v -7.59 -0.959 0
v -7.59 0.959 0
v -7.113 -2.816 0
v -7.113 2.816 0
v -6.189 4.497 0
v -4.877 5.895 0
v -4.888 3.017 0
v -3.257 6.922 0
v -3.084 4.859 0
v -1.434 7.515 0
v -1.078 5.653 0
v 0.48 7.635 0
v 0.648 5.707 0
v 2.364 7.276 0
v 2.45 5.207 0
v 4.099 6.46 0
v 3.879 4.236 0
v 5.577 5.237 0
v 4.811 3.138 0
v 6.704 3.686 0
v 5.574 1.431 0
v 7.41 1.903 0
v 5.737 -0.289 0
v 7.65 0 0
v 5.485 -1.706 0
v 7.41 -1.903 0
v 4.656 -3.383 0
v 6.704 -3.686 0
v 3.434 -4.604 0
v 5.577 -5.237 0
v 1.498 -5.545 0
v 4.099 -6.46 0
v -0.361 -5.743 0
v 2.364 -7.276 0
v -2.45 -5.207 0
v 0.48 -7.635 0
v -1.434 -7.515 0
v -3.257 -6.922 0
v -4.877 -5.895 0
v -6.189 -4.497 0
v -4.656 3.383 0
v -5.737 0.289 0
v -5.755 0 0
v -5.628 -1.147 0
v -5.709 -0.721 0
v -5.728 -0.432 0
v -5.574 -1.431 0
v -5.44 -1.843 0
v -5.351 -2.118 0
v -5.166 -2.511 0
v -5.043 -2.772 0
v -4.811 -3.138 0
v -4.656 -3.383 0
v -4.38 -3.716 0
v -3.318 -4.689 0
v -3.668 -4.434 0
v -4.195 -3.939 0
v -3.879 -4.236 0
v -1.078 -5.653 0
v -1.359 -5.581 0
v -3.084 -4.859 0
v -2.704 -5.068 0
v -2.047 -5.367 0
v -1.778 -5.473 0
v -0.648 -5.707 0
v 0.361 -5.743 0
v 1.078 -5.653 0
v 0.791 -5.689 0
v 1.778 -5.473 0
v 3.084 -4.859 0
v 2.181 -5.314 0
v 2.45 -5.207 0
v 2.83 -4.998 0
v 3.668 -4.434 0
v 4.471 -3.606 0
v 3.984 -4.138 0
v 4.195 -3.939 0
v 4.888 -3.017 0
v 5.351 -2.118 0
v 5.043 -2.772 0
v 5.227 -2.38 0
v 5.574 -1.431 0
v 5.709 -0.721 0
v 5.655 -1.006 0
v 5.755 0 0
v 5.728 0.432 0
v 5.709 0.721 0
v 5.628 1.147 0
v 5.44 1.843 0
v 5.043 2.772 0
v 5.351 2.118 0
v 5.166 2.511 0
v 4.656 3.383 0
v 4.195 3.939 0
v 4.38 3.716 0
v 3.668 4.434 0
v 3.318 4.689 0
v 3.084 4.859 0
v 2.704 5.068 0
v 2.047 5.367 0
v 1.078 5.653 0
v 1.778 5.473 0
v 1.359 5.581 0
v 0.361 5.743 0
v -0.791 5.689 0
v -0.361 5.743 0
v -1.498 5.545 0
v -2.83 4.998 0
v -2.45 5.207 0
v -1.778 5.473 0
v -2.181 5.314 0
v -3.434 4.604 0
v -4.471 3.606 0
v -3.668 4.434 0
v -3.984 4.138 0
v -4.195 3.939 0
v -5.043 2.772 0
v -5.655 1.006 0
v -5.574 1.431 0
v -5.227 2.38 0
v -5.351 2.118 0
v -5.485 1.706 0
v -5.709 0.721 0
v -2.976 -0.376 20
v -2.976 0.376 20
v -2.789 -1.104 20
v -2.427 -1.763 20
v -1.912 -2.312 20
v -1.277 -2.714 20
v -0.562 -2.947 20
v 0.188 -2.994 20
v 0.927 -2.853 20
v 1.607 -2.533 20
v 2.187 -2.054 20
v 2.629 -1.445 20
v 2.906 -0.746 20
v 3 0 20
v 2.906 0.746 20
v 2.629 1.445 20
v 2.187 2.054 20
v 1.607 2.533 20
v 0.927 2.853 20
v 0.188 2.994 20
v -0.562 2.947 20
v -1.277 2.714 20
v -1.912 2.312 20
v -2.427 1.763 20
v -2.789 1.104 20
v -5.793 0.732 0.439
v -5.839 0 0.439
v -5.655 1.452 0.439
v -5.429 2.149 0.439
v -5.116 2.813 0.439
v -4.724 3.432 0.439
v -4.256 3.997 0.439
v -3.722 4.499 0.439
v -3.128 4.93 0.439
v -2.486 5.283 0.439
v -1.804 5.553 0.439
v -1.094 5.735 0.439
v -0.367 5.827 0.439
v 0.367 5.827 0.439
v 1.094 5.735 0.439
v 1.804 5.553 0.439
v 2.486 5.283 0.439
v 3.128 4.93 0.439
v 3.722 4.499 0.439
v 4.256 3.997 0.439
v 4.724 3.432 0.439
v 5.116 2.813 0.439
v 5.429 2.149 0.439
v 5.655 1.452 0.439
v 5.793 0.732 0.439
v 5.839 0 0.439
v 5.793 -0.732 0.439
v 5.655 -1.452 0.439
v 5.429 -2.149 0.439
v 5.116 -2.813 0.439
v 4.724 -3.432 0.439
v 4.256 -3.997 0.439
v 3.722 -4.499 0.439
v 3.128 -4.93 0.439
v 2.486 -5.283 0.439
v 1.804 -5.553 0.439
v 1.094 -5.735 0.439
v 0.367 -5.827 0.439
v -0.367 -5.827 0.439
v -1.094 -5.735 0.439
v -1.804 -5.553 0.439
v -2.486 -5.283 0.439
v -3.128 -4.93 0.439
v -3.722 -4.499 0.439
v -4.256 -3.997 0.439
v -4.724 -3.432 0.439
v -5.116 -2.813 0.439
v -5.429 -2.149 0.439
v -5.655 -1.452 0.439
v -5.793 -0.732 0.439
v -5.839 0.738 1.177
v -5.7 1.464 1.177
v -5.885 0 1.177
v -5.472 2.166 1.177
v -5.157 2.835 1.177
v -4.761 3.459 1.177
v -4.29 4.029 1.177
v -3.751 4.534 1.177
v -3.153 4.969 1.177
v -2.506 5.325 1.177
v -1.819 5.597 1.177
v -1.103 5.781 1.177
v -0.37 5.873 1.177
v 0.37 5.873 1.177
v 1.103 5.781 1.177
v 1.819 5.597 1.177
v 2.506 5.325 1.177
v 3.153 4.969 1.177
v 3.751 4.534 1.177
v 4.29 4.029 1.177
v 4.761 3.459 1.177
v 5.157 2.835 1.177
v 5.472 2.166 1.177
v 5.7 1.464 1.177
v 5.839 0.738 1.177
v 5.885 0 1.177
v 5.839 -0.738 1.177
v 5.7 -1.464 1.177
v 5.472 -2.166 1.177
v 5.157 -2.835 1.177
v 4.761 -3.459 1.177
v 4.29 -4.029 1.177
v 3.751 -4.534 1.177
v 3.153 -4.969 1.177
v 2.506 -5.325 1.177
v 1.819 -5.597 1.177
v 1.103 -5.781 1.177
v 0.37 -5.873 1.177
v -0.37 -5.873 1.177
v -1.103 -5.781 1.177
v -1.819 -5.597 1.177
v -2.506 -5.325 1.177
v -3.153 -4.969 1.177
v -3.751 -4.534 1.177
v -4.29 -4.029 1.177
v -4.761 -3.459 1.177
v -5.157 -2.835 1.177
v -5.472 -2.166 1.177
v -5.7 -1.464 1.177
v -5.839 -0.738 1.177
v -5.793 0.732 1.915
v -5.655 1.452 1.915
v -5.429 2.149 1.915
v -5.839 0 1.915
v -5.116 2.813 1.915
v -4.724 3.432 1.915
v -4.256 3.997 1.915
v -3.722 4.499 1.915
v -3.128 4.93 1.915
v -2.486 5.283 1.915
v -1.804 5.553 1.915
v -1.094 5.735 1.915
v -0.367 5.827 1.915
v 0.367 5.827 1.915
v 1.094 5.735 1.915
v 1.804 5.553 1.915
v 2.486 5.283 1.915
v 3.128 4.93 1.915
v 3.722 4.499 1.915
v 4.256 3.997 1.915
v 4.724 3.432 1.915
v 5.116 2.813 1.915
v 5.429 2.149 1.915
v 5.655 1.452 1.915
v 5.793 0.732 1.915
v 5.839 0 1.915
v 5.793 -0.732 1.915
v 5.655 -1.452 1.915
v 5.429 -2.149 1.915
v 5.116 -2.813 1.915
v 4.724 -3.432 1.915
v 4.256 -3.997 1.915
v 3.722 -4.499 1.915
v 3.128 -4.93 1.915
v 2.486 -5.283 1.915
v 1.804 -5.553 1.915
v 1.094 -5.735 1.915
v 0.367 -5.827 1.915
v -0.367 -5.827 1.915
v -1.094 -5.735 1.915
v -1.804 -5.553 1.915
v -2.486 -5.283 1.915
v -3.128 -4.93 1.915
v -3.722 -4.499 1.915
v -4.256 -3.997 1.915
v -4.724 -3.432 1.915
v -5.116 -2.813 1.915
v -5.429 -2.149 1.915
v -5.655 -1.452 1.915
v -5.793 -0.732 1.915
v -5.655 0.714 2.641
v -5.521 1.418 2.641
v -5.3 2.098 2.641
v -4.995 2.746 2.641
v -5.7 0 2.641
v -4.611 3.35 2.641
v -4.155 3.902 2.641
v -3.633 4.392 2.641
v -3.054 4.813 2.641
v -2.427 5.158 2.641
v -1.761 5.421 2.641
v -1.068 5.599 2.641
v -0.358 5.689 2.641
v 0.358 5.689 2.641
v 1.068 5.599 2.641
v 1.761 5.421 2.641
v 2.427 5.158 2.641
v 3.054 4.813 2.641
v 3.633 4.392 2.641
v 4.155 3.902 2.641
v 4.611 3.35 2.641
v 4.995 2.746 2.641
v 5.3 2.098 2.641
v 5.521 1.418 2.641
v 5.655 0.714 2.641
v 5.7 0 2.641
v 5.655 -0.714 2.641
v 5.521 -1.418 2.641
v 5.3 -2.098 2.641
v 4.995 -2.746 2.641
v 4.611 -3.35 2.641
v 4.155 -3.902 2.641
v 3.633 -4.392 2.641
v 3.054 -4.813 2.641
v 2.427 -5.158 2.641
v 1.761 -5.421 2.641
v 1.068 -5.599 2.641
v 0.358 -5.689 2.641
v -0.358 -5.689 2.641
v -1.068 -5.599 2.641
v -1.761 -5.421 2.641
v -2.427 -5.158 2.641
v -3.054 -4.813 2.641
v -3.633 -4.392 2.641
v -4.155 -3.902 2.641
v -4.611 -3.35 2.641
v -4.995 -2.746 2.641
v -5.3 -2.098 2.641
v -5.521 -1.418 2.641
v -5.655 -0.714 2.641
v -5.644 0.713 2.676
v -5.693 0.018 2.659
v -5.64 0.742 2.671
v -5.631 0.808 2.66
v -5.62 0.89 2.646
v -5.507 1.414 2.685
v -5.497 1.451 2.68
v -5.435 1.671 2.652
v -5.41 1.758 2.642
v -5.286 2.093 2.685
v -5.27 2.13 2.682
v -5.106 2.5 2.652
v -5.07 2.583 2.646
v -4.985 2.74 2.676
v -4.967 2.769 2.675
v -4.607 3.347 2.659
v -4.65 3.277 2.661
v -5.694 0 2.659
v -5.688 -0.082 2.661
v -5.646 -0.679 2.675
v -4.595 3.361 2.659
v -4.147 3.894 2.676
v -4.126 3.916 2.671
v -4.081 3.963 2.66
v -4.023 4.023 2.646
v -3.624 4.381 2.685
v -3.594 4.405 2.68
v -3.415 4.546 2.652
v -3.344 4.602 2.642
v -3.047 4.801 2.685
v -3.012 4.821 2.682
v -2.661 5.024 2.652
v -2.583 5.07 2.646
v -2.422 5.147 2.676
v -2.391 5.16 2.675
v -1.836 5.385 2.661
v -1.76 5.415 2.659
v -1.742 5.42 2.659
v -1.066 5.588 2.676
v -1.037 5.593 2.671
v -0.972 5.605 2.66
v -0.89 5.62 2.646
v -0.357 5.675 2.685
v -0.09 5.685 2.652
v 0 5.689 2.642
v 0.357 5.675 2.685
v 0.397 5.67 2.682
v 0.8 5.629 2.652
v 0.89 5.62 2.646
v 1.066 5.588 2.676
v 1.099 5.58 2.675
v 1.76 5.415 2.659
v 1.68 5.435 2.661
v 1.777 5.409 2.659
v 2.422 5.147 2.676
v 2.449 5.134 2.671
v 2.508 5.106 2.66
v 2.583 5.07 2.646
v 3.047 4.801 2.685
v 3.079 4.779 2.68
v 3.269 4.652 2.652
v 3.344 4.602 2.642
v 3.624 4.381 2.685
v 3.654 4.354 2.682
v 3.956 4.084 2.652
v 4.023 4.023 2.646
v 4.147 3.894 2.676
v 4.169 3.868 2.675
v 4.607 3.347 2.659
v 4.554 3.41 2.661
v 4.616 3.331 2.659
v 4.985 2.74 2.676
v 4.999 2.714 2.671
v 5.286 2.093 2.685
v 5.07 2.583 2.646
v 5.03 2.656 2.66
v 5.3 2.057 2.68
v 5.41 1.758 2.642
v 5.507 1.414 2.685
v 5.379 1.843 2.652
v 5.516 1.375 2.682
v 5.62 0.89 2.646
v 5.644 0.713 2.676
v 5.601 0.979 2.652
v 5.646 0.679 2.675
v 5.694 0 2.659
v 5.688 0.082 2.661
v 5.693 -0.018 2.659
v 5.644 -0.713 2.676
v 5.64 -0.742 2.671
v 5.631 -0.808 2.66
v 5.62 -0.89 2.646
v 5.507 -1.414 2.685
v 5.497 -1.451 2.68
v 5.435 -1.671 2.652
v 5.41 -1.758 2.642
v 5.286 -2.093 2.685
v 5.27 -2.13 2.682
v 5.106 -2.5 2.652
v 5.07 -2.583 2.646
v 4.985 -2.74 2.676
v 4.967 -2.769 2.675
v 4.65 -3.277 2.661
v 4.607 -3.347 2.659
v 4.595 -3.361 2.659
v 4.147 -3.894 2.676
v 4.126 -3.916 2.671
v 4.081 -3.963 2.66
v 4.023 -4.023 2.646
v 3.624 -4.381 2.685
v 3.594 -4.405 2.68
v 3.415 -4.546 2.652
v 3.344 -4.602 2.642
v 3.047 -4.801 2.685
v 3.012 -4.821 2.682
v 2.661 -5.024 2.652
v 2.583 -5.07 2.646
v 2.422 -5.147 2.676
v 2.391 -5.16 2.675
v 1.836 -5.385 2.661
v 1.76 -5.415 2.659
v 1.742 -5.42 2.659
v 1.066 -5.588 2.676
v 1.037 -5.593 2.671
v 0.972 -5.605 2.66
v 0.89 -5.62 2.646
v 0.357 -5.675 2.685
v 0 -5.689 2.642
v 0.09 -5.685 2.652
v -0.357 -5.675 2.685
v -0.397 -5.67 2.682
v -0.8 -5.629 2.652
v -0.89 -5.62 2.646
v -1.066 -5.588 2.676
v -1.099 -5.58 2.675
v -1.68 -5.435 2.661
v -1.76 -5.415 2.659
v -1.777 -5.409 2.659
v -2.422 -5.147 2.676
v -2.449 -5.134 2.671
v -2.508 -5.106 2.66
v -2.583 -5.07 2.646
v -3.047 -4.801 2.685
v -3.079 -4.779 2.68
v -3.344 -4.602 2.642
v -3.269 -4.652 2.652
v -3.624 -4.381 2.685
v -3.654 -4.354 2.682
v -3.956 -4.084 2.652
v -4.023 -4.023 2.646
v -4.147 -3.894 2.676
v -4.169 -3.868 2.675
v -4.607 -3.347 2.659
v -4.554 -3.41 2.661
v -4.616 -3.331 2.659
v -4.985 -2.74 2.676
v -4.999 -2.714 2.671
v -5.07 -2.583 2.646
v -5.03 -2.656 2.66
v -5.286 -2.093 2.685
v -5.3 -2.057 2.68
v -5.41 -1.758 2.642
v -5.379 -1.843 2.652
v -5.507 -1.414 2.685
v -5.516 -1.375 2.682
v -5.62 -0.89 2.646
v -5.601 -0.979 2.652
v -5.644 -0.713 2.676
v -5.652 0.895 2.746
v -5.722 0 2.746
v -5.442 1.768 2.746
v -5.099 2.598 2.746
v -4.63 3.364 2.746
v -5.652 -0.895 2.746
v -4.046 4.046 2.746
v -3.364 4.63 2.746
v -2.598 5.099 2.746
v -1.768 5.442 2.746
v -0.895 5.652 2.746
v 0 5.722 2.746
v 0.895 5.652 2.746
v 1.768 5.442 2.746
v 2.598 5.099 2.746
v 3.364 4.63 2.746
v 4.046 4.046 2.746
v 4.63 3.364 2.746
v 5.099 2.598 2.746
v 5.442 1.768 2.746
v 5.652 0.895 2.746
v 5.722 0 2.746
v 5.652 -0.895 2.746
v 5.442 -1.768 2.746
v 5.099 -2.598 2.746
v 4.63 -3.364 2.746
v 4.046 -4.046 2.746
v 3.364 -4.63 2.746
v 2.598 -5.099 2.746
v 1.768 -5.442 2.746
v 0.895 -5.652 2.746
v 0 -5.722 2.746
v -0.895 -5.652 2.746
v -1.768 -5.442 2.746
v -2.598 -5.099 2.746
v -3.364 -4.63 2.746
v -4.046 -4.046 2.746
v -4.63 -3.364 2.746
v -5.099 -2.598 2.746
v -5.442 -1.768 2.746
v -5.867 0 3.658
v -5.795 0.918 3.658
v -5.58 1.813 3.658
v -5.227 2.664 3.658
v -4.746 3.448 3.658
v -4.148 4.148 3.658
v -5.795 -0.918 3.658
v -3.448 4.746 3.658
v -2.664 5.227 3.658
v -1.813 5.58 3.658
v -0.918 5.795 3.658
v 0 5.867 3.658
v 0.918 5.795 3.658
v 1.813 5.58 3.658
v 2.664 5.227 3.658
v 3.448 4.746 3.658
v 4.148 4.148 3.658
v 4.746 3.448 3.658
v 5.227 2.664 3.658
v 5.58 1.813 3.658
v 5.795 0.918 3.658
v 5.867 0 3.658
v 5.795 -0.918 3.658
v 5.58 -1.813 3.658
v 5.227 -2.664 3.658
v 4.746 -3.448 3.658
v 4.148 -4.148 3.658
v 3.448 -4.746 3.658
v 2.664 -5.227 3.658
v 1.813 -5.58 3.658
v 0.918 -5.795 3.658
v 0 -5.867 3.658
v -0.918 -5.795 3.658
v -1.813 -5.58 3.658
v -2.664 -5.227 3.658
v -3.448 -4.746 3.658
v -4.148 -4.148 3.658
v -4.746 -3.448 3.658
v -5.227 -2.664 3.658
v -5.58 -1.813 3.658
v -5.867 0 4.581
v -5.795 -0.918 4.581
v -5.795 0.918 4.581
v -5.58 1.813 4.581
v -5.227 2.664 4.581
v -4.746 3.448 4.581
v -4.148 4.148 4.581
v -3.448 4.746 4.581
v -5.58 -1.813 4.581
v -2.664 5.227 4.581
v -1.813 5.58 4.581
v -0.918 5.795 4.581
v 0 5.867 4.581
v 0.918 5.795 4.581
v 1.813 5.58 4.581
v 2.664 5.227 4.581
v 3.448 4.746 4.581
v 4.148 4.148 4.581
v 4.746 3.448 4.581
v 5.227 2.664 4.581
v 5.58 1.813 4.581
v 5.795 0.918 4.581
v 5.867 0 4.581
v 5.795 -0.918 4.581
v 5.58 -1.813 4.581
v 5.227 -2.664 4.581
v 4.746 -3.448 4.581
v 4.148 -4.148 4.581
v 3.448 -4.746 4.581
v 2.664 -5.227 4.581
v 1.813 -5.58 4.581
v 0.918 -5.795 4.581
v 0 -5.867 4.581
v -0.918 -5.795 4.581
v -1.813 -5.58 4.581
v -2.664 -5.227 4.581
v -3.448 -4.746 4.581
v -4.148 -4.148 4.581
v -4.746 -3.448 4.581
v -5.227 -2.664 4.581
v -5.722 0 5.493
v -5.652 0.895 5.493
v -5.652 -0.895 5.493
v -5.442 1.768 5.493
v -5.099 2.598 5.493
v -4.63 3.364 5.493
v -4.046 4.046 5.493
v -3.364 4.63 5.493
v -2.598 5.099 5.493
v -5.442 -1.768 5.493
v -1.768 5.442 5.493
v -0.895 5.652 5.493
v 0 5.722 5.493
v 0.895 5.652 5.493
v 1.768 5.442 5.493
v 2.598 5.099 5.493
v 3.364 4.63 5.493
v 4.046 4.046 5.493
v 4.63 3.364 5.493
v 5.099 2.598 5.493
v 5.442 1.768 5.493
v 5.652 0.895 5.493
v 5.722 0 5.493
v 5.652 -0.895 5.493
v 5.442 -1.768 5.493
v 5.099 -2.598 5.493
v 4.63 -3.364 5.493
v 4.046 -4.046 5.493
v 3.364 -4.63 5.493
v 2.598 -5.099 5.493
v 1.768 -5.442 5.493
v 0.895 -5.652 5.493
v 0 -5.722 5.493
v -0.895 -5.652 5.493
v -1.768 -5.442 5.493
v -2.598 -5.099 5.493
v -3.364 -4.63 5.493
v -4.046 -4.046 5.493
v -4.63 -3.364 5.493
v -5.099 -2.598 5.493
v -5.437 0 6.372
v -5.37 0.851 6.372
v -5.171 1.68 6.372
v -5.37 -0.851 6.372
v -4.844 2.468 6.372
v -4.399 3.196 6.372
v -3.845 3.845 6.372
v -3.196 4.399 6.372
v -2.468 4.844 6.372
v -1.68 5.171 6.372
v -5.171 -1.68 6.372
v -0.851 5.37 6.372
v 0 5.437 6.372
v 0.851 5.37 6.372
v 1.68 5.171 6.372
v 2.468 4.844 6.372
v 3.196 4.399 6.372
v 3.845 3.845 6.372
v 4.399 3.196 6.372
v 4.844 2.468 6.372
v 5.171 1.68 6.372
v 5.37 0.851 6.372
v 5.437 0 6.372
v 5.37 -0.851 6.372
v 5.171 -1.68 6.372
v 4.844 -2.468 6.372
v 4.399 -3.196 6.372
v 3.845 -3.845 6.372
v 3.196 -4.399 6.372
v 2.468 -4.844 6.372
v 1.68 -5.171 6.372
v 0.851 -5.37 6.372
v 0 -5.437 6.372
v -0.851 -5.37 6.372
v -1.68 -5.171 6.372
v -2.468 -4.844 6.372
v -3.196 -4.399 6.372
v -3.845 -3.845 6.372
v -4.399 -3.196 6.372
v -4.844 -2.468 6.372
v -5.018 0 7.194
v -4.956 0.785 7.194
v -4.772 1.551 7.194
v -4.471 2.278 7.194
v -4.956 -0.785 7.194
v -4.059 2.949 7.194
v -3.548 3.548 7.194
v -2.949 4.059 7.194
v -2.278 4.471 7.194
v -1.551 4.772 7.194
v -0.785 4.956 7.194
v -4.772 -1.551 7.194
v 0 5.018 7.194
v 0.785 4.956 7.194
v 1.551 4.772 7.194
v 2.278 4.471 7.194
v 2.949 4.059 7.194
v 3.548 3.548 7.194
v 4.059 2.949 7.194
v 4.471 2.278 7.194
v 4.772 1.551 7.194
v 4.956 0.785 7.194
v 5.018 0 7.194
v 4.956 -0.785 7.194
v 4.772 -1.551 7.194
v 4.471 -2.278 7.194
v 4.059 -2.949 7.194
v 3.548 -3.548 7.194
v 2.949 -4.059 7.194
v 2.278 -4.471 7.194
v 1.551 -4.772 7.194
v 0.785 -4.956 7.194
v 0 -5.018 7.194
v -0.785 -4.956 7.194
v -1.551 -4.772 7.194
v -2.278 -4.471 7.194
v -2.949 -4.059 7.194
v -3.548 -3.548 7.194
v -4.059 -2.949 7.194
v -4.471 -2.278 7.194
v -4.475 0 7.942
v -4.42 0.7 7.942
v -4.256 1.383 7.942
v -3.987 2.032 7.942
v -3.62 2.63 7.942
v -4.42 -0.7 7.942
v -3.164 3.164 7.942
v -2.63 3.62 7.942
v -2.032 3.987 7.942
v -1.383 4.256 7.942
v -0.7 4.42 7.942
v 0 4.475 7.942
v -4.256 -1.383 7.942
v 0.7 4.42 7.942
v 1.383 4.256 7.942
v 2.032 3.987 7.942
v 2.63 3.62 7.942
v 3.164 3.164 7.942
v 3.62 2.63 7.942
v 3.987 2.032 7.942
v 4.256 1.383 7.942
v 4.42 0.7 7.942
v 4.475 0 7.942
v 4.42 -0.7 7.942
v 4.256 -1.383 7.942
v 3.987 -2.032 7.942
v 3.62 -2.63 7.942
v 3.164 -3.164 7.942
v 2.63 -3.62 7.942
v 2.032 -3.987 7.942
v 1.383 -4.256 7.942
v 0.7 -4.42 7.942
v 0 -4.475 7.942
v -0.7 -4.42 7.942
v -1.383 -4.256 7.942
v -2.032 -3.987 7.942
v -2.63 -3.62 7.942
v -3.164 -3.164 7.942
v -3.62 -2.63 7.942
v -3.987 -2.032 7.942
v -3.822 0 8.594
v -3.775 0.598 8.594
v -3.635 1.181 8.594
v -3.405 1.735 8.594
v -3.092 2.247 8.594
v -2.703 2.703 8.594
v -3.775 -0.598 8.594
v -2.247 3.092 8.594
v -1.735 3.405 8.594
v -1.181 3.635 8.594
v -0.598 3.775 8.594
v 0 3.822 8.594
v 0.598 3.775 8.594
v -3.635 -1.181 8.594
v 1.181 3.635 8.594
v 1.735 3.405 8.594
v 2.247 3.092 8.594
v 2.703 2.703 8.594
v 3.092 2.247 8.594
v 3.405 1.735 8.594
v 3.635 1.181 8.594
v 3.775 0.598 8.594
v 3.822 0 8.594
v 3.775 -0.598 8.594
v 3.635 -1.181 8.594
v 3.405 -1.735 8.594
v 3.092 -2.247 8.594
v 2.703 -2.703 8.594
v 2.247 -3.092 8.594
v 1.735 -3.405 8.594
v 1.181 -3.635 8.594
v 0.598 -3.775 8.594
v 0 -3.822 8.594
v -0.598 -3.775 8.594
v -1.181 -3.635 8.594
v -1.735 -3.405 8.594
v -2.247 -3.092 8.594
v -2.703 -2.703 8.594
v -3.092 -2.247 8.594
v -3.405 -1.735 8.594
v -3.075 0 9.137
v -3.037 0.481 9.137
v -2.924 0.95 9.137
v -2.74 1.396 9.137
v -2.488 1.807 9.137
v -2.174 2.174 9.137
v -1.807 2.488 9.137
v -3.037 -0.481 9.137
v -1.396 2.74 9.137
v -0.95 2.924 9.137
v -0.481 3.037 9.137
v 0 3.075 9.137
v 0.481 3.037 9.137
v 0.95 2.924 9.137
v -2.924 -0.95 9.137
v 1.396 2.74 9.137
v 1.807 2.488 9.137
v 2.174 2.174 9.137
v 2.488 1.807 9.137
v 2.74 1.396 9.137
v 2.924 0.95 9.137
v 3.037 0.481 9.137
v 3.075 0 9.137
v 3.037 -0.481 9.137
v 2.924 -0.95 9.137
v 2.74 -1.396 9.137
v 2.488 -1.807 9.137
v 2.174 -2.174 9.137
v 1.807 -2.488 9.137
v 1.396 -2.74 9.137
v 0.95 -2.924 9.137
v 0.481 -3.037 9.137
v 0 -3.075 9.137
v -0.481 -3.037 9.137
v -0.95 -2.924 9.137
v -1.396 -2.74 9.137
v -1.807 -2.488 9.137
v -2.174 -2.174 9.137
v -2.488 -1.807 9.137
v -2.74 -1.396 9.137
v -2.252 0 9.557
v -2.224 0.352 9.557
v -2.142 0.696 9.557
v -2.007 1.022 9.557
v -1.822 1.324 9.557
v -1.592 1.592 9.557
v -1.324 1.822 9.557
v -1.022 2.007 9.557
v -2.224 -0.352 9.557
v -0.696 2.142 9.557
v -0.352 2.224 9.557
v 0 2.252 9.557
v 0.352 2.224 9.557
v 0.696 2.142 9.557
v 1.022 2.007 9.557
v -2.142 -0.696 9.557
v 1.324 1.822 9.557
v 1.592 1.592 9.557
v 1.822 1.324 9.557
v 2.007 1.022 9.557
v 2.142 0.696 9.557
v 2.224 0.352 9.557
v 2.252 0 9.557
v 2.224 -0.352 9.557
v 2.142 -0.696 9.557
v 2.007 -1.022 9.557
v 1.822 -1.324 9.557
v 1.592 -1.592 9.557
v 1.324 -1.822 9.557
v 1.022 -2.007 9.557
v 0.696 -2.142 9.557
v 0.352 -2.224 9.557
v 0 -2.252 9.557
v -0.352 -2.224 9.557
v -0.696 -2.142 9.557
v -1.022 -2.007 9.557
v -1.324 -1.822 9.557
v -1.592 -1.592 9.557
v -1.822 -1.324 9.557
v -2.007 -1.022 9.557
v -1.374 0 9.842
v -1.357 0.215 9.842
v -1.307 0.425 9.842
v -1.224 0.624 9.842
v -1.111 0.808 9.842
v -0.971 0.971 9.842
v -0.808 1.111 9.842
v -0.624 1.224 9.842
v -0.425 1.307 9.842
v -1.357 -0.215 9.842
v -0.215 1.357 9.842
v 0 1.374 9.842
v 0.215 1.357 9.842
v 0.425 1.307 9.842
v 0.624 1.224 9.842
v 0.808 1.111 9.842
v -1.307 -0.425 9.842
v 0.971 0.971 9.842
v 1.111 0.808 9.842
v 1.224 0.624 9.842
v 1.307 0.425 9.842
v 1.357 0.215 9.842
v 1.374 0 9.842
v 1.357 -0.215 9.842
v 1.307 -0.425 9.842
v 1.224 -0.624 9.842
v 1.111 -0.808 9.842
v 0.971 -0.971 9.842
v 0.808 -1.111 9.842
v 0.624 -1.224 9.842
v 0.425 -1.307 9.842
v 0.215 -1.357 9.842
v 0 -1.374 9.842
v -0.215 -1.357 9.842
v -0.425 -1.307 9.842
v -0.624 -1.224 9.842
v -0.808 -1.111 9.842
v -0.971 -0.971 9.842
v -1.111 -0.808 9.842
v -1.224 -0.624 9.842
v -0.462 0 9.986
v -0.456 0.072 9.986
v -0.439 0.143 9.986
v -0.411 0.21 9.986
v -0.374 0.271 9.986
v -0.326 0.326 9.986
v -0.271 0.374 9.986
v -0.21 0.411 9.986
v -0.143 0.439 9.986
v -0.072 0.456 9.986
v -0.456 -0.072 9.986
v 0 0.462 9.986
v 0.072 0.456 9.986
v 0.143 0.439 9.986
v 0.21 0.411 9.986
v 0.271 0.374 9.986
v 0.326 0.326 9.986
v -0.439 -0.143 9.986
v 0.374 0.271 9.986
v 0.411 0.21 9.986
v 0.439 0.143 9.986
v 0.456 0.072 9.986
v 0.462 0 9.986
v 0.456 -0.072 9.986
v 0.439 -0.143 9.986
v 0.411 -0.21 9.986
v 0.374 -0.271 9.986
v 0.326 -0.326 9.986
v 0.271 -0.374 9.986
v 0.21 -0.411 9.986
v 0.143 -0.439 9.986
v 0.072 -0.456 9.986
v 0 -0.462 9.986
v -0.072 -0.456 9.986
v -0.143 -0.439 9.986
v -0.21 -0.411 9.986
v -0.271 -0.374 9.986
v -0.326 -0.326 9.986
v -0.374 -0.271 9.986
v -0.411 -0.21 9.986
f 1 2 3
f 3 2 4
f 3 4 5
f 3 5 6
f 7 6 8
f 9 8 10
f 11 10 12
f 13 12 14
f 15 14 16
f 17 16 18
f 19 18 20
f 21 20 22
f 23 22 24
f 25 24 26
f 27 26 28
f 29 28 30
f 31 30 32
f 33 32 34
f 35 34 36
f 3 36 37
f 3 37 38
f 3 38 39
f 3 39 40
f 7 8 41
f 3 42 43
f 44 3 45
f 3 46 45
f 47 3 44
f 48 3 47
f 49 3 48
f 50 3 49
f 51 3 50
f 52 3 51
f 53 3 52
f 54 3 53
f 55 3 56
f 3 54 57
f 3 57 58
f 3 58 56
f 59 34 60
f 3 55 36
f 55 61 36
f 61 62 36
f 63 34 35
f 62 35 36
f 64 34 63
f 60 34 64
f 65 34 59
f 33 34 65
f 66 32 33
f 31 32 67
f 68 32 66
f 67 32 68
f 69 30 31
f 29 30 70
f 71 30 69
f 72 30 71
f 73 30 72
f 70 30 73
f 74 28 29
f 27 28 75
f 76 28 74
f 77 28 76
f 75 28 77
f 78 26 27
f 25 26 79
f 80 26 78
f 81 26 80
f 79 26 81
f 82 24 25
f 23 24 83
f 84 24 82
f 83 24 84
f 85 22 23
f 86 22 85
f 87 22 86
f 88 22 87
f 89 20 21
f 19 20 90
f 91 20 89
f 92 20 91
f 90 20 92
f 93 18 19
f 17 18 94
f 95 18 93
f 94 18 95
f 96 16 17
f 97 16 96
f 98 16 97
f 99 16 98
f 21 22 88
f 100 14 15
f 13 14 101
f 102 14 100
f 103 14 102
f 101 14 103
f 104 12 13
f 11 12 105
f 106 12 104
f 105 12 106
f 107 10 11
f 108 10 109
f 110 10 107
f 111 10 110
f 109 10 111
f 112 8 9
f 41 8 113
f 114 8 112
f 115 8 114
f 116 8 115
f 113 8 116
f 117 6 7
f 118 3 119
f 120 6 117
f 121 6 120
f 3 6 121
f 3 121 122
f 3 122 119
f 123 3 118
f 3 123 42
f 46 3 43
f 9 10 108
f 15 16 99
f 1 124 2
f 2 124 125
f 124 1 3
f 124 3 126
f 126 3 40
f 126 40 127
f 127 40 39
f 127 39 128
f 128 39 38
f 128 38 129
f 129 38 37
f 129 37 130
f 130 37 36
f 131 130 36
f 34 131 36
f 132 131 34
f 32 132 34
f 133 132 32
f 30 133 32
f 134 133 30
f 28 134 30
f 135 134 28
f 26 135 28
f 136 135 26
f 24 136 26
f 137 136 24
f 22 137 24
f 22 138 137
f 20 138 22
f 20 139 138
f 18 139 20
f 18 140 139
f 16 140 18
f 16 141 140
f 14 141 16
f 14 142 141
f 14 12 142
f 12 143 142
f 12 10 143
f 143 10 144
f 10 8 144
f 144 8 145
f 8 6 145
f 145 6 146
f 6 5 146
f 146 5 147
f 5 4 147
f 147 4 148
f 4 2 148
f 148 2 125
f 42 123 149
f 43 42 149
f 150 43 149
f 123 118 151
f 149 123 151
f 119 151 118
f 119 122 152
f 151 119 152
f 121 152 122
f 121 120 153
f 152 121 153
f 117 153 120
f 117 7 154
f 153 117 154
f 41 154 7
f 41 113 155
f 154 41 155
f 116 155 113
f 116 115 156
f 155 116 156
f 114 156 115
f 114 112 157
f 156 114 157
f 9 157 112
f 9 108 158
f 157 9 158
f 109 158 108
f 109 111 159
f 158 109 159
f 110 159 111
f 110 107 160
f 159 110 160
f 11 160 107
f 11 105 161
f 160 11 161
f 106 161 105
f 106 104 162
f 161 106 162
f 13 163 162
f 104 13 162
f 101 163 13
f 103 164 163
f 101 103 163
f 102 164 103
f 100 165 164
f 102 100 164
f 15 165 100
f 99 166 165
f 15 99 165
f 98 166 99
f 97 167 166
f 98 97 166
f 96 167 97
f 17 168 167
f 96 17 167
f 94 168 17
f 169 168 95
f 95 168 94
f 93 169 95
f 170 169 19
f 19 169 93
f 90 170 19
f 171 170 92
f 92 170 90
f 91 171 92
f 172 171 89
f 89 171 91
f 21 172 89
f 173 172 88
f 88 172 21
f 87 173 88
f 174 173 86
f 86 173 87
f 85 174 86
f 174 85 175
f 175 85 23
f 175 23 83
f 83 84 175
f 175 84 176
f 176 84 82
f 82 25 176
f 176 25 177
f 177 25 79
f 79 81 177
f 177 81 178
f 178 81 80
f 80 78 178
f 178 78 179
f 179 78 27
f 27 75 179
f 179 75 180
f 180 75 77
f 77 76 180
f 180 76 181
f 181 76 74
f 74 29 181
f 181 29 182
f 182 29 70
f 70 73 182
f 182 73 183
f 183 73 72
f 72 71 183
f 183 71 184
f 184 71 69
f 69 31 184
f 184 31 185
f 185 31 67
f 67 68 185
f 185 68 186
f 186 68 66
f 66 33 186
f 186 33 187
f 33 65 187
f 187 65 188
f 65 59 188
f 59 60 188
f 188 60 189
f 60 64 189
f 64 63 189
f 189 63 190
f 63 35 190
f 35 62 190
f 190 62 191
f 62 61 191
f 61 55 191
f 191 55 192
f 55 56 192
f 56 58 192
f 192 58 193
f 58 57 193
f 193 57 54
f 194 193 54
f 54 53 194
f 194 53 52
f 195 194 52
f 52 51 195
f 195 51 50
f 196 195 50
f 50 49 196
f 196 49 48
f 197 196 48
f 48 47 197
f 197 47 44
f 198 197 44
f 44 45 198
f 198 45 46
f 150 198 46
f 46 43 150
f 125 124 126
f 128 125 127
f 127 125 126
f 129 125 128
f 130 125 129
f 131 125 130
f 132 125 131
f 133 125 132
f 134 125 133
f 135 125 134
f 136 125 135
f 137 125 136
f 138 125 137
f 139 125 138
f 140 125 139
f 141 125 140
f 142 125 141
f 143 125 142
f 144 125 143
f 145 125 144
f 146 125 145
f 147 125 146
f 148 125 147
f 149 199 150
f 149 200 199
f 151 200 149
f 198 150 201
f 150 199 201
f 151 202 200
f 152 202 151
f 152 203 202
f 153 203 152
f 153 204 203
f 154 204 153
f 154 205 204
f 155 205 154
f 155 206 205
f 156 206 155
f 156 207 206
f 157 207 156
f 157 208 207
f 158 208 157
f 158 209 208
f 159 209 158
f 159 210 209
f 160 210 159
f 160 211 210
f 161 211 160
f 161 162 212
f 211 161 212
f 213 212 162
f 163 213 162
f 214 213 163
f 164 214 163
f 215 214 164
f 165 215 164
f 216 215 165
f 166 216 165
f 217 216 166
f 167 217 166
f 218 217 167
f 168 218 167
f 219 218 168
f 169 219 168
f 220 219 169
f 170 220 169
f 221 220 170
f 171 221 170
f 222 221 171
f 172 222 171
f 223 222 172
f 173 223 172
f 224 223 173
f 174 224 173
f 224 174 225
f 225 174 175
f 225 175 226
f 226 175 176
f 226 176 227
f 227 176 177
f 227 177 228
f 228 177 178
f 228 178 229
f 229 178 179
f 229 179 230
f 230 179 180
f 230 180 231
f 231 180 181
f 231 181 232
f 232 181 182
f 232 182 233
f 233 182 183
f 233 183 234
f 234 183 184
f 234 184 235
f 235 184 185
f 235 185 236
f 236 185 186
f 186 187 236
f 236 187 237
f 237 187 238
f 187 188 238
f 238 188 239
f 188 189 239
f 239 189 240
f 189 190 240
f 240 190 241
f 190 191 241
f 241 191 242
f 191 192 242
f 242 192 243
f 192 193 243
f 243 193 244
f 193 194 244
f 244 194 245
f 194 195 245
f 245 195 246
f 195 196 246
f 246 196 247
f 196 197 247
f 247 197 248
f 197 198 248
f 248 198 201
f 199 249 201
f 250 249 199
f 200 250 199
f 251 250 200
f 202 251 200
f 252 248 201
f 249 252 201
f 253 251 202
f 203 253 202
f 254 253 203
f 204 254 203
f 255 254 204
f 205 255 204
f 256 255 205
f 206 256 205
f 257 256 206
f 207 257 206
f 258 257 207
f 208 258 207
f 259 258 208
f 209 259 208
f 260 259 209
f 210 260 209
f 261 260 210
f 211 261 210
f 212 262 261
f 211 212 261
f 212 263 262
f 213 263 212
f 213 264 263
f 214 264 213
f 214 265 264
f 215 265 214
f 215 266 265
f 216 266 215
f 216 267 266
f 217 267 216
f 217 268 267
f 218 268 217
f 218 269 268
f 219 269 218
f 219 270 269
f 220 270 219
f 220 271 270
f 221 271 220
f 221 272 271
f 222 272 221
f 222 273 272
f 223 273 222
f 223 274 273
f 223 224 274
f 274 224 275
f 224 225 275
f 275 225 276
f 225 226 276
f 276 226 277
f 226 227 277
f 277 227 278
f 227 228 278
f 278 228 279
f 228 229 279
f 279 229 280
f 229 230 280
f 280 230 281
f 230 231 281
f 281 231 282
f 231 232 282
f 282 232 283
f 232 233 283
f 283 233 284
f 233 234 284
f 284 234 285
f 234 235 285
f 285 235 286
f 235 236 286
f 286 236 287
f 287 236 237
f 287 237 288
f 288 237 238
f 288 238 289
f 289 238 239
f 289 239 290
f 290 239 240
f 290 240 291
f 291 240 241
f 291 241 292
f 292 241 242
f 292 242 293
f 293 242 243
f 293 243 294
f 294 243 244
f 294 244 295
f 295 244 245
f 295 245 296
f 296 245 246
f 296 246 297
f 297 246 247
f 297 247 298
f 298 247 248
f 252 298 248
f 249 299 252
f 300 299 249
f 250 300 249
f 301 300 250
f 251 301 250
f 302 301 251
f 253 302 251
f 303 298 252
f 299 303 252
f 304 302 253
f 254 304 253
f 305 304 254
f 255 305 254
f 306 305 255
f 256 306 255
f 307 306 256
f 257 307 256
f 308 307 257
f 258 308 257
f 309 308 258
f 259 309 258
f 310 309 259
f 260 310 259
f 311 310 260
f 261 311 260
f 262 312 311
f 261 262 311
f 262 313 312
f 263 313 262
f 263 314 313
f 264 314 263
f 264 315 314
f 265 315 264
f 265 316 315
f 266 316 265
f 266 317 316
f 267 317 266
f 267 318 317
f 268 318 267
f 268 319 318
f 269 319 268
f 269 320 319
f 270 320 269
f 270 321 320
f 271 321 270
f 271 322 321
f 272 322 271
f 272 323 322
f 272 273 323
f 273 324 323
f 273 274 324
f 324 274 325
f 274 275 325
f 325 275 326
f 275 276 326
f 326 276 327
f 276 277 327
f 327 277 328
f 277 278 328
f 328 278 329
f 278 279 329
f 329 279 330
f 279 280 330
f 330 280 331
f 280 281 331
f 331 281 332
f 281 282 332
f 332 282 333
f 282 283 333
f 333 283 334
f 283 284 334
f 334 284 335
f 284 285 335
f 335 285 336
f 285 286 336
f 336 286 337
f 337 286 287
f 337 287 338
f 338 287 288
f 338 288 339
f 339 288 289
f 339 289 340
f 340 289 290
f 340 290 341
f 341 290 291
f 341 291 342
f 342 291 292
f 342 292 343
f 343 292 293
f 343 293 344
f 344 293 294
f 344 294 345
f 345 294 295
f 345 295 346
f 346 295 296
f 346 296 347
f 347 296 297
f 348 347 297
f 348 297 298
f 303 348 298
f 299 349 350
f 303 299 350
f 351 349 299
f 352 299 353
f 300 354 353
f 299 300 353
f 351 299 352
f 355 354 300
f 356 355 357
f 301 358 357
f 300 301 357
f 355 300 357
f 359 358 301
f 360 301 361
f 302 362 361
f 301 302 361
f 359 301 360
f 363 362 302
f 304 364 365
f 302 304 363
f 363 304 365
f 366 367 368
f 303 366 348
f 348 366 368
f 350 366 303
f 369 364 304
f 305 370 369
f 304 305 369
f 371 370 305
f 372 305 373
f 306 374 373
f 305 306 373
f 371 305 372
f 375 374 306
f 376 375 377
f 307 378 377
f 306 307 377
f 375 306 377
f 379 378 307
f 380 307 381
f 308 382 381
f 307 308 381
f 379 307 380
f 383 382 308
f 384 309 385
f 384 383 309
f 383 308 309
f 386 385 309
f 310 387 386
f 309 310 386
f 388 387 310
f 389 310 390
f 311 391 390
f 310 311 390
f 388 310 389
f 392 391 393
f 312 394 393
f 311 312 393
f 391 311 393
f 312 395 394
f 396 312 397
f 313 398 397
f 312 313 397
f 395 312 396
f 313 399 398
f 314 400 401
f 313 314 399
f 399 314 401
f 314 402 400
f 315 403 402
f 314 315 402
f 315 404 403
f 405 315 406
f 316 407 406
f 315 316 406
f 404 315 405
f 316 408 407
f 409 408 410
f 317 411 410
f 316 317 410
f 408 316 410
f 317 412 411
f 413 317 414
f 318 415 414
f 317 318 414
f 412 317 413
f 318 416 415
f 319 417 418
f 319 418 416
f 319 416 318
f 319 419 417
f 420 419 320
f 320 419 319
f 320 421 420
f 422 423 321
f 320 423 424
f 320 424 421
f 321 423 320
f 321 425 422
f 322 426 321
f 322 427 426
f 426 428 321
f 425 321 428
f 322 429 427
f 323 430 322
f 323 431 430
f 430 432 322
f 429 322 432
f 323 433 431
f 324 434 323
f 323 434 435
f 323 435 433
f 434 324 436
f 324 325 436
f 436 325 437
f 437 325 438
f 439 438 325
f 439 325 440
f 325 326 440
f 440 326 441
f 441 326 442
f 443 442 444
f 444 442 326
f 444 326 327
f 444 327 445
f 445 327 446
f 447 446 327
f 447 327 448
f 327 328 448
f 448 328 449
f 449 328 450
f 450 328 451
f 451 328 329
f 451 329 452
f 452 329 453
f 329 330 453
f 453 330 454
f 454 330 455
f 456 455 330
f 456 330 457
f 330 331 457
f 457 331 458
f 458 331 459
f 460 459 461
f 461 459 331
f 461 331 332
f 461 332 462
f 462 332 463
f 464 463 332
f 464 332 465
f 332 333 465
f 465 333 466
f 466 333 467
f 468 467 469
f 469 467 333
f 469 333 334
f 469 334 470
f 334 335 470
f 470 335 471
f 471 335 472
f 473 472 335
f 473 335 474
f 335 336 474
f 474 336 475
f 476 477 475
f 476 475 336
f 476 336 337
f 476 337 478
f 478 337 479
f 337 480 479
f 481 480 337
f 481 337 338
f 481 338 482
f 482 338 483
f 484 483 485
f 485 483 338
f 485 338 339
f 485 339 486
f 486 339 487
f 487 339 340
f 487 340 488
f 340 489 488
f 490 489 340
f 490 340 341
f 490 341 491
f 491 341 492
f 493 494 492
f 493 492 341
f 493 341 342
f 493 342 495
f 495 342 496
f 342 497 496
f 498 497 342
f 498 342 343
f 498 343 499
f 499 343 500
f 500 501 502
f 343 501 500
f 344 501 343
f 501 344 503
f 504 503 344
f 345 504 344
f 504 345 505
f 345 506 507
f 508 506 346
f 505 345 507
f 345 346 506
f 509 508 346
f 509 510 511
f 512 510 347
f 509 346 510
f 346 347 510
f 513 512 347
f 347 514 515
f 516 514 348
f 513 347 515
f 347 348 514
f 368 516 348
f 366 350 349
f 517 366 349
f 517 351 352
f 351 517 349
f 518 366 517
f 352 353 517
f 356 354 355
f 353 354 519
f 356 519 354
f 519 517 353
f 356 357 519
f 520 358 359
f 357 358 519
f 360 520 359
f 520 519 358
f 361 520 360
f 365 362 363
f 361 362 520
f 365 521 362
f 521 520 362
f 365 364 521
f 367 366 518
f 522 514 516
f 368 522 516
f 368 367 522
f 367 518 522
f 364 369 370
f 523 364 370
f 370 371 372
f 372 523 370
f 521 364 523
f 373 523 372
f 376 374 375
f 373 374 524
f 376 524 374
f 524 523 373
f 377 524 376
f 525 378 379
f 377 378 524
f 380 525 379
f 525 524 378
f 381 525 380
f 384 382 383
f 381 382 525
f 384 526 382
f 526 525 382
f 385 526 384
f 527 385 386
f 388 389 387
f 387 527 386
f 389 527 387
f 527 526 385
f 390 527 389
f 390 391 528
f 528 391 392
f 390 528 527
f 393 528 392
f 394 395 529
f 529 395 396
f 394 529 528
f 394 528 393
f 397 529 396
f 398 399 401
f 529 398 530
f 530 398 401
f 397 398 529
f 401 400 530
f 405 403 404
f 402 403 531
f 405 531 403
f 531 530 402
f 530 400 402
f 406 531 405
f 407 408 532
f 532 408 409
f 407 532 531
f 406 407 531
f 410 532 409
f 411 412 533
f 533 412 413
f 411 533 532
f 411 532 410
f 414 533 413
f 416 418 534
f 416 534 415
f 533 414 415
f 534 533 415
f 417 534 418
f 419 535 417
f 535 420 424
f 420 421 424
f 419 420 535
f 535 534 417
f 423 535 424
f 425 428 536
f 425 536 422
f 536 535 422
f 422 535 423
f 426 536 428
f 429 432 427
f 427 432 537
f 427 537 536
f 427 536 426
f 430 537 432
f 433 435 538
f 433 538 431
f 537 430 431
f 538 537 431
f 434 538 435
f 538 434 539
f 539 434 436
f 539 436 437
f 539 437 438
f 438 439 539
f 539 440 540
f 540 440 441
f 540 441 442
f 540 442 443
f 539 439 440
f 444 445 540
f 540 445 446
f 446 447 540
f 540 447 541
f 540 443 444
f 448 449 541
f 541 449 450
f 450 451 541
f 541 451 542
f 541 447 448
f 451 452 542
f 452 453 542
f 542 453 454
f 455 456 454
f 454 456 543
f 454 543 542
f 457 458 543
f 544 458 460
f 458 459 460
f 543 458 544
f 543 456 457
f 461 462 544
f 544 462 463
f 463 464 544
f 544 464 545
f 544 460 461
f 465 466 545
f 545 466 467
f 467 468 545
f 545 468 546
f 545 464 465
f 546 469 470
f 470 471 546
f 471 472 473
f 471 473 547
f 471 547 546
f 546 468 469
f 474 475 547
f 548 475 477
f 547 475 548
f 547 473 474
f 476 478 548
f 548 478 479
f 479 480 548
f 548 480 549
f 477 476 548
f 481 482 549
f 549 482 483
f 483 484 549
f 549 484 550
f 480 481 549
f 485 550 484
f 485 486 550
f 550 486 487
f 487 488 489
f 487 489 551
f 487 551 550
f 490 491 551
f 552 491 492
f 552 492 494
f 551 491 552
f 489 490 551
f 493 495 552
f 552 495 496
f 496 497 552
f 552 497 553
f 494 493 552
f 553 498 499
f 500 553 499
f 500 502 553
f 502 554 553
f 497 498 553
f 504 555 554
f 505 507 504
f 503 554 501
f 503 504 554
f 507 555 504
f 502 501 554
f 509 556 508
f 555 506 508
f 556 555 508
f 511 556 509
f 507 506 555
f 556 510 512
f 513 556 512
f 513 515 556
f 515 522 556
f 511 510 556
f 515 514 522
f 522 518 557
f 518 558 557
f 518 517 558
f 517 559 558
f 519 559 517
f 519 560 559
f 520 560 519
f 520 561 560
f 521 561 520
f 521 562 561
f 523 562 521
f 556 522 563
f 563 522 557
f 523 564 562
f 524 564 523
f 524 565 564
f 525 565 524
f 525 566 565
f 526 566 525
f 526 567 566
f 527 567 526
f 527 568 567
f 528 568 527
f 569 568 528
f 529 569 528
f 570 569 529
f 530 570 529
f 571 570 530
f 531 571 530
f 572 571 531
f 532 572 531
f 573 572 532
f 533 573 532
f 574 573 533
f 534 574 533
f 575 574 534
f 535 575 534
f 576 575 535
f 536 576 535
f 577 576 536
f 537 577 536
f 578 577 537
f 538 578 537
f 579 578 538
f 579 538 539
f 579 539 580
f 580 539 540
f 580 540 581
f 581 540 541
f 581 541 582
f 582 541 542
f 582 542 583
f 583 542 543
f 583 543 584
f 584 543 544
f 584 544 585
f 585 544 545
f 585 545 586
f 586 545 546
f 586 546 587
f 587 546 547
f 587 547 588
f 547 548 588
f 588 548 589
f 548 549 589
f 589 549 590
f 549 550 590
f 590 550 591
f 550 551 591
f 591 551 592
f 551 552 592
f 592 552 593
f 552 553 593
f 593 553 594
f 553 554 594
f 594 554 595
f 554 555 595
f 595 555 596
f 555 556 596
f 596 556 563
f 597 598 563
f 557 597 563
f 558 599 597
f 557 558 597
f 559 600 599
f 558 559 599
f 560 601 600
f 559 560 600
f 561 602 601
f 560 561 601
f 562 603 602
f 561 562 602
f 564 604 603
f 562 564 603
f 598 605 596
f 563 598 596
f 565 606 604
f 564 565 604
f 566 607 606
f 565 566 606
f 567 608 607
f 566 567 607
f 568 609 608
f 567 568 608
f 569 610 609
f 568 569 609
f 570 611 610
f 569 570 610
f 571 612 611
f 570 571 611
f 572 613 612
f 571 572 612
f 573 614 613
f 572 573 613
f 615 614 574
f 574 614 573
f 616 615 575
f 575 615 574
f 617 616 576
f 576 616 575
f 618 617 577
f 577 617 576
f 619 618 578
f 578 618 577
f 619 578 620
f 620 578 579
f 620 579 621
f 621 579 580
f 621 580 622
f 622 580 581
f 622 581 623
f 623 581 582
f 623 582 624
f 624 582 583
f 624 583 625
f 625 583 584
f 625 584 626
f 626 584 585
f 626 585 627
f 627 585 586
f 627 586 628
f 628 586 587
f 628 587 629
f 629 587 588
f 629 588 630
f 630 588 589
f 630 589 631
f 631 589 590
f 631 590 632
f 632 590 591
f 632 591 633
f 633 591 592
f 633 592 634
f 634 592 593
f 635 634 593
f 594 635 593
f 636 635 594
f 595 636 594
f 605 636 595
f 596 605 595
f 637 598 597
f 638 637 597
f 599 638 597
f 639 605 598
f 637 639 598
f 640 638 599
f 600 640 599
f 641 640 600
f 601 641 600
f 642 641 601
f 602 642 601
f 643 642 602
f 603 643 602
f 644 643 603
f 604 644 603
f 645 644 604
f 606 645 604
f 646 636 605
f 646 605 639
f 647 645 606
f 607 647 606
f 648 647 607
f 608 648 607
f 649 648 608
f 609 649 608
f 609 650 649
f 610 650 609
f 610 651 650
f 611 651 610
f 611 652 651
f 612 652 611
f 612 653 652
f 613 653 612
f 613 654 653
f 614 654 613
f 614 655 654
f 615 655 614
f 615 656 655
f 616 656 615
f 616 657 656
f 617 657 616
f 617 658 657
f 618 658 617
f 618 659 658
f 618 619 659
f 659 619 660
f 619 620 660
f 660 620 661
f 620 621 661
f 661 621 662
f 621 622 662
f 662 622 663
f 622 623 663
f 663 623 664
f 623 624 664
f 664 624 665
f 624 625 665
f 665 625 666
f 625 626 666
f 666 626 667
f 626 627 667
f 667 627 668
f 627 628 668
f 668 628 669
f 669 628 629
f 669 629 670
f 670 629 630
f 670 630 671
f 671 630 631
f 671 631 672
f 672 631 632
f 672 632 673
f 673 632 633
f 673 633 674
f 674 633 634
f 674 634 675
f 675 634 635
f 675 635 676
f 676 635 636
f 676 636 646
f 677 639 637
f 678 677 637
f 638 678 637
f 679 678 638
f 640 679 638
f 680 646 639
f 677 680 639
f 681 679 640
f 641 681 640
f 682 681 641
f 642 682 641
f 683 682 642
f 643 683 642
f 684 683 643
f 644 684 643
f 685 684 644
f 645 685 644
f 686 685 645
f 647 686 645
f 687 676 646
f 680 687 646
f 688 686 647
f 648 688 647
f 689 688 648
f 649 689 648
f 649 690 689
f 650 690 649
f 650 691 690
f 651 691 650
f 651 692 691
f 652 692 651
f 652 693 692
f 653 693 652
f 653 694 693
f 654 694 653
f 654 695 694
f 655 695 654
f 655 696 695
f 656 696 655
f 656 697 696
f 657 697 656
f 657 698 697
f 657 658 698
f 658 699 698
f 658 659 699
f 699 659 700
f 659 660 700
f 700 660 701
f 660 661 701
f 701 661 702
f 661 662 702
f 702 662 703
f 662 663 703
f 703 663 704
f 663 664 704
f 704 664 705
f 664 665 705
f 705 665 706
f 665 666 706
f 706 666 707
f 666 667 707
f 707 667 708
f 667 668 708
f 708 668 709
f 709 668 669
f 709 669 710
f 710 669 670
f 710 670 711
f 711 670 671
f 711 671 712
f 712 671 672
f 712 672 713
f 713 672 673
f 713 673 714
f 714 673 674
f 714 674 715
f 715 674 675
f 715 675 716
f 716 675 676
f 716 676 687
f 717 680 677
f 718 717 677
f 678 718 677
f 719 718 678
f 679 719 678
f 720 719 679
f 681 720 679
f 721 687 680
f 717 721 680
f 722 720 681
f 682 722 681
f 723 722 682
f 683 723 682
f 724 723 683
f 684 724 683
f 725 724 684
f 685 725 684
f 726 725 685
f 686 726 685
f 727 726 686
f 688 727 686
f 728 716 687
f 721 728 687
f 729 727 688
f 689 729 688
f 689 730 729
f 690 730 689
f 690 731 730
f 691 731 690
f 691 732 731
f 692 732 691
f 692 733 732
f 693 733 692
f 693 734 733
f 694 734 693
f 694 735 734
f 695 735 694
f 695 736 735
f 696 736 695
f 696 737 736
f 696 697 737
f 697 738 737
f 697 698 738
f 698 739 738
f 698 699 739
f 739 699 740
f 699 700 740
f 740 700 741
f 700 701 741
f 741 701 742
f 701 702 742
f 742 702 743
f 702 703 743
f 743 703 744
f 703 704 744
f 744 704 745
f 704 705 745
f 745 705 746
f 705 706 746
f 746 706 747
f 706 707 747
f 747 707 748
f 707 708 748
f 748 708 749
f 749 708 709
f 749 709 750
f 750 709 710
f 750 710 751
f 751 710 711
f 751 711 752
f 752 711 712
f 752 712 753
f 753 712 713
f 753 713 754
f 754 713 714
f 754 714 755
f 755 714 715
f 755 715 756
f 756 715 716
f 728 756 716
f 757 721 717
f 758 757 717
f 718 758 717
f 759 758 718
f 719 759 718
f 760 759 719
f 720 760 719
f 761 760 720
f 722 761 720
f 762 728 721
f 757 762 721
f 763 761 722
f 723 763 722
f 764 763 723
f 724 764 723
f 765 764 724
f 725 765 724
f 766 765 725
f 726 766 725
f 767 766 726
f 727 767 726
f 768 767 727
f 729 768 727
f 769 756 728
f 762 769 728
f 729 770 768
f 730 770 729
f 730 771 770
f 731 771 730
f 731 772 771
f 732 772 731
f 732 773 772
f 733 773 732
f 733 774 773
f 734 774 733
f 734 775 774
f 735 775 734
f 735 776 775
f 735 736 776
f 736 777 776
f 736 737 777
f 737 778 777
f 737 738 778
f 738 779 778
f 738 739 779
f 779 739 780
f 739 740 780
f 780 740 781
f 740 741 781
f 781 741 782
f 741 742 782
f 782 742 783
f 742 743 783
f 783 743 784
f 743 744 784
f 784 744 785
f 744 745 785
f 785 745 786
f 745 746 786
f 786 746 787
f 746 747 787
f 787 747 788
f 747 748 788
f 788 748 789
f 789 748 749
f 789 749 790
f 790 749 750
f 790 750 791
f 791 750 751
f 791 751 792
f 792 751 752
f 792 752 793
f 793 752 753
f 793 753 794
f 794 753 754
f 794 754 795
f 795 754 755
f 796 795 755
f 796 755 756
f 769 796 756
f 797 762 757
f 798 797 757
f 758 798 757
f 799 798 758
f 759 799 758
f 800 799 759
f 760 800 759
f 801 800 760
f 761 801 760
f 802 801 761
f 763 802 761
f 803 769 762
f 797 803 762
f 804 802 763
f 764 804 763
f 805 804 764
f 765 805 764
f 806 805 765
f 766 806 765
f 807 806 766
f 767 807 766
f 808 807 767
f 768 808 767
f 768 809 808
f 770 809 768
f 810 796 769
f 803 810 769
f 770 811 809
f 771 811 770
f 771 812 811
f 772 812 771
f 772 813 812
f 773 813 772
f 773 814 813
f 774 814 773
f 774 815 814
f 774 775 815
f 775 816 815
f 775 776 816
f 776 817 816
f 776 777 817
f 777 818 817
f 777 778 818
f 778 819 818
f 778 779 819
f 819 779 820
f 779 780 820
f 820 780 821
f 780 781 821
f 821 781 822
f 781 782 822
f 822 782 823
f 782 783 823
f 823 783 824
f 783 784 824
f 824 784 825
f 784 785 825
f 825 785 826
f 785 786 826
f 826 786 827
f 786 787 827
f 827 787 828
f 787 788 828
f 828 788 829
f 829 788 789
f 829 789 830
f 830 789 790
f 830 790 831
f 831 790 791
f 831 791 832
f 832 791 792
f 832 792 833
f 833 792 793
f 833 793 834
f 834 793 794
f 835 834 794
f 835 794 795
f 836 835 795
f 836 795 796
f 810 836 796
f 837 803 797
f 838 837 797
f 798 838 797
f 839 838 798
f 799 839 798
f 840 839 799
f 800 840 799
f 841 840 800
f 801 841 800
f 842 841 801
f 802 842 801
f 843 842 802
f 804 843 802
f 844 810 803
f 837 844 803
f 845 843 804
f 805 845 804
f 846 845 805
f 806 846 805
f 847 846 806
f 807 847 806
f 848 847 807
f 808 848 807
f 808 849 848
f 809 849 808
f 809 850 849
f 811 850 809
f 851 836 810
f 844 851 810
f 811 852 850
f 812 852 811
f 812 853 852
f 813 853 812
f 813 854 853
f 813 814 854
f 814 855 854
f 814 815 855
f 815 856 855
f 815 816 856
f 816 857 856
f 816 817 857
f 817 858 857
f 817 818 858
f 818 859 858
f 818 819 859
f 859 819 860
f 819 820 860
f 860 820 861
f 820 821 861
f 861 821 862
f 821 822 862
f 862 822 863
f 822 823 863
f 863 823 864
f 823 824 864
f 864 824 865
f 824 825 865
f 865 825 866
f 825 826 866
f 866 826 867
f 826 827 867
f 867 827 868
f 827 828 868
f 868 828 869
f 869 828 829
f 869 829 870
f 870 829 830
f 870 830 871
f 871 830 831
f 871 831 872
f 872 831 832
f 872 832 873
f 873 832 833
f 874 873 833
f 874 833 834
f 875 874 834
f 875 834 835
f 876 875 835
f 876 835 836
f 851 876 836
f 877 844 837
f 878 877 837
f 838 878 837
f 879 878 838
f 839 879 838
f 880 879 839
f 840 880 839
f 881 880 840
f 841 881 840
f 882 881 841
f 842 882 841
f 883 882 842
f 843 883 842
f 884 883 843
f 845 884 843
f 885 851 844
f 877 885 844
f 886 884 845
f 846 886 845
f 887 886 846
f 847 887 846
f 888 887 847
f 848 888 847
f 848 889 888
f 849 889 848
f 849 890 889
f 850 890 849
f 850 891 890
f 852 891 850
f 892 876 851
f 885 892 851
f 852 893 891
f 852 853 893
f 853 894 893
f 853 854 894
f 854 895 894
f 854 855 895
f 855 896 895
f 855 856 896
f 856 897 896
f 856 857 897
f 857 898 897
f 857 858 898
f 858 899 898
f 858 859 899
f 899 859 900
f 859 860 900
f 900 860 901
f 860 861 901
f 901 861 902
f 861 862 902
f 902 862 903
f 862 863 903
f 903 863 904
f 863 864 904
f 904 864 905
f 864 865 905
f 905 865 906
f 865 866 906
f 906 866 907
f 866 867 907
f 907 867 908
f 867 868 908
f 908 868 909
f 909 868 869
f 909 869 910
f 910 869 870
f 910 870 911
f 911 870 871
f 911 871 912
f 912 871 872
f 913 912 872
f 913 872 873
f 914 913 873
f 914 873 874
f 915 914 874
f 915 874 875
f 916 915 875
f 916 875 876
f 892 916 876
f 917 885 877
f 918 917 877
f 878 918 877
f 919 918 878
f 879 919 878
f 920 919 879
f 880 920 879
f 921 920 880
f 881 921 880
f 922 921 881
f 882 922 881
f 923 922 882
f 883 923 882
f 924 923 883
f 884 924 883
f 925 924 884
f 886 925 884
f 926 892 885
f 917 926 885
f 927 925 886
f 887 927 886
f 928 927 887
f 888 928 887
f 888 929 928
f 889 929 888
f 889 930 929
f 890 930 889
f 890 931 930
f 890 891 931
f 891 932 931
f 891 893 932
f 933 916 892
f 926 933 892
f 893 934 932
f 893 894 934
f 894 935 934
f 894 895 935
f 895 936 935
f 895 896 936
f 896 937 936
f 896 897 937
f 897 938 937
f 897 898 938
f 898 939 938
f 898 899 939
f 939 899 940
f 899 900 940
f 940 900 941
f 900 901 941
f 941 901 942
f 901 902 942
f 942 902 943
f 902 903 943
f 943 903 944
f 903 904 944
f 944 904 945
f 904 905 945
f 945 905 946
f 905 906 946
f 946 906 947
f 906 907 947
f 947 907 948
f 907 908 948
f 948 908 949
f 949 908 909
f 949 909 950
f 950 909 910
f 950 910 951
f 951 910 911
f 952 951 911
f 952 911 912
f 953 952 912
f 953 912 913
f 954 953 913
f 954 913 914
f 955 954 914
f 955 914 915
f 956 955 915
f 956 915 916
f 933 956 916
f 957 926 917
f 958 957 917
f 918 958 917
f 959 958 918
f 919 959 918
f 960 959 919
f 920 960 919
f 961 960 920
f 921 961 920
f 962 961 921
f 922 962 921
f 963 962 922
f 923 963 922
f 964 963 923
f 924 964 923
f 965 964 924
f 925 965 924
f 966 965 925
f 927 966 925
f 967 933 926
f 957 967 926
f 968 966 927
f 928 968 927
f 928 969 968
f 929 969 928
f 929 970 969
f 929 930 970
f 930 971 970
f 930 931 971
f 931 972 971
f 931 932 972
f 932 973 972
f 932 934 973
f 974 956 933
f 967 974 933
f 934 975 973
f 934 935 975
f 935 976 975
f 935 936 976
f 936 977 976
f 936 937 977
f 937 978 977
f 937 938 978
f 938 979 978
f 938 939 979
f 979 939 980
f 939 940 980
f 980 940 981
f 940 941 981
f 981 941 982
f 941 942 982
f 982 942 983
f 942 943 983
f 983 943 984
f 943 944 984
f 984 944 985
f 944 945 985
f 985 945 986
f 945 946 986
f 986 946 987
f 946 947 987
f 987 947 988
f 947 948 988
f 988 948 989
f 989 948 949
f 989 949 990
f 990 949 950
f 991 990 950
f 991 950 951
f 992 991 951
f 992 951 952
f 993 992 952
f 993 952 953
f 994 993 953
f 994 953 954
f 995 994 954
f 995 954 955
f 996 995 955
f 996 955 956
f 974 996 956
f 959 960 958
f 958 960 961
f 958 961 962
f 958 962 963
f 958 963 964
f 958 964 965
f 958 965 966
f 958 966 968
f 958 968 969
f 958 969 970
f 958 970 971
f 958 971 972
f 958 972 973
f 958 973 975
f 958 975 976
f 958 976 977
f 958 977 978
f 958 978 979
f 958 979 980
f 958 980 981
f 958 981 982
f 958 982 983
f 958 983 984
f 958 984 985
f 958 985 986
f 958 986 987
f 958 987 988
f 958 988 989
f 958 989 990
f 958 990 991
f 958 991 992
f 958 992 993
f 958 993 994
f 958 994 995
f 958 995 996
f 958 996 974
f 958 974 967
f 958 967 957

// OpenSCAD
r=11/2;
div=50;
i=3.5;
rr = r*(1+i/div);

//import("trooperhelemt2_repaired.stl");
//import("darthVader_cleaned_fixed.stl");

//intersection(){
 //translate([-25,-25,0])#cube([50,50,50]);
difference(){
	//scale(0.9) import("trooperhelemt2_repaired.stl");
//union(){
	//scale(0.6) translate([-22,-24,-1]) import("darthVader_cleaned_fixed.stl");
	#cylinder(r=rr*1.3,r2=3,h=20);
//	}
	translate([0,0,rr/5]) #sphere(r=rr,$fn=50); 
	translate([0,0,rr/5+rr/2]) #sphere(r=rr,$fn=40); 


//translate([0,0,rr/5]) sphere(r=rr,$fn=40); // tjoep(r*(1+i/div));
}
//}

module tjoep(r){
	translate([0,0,r/5]) {
 		sphere(r=r,$fn=40);
 		//translate([0,0,r])sphere(r=r/2,$fn=20);
	}
}
